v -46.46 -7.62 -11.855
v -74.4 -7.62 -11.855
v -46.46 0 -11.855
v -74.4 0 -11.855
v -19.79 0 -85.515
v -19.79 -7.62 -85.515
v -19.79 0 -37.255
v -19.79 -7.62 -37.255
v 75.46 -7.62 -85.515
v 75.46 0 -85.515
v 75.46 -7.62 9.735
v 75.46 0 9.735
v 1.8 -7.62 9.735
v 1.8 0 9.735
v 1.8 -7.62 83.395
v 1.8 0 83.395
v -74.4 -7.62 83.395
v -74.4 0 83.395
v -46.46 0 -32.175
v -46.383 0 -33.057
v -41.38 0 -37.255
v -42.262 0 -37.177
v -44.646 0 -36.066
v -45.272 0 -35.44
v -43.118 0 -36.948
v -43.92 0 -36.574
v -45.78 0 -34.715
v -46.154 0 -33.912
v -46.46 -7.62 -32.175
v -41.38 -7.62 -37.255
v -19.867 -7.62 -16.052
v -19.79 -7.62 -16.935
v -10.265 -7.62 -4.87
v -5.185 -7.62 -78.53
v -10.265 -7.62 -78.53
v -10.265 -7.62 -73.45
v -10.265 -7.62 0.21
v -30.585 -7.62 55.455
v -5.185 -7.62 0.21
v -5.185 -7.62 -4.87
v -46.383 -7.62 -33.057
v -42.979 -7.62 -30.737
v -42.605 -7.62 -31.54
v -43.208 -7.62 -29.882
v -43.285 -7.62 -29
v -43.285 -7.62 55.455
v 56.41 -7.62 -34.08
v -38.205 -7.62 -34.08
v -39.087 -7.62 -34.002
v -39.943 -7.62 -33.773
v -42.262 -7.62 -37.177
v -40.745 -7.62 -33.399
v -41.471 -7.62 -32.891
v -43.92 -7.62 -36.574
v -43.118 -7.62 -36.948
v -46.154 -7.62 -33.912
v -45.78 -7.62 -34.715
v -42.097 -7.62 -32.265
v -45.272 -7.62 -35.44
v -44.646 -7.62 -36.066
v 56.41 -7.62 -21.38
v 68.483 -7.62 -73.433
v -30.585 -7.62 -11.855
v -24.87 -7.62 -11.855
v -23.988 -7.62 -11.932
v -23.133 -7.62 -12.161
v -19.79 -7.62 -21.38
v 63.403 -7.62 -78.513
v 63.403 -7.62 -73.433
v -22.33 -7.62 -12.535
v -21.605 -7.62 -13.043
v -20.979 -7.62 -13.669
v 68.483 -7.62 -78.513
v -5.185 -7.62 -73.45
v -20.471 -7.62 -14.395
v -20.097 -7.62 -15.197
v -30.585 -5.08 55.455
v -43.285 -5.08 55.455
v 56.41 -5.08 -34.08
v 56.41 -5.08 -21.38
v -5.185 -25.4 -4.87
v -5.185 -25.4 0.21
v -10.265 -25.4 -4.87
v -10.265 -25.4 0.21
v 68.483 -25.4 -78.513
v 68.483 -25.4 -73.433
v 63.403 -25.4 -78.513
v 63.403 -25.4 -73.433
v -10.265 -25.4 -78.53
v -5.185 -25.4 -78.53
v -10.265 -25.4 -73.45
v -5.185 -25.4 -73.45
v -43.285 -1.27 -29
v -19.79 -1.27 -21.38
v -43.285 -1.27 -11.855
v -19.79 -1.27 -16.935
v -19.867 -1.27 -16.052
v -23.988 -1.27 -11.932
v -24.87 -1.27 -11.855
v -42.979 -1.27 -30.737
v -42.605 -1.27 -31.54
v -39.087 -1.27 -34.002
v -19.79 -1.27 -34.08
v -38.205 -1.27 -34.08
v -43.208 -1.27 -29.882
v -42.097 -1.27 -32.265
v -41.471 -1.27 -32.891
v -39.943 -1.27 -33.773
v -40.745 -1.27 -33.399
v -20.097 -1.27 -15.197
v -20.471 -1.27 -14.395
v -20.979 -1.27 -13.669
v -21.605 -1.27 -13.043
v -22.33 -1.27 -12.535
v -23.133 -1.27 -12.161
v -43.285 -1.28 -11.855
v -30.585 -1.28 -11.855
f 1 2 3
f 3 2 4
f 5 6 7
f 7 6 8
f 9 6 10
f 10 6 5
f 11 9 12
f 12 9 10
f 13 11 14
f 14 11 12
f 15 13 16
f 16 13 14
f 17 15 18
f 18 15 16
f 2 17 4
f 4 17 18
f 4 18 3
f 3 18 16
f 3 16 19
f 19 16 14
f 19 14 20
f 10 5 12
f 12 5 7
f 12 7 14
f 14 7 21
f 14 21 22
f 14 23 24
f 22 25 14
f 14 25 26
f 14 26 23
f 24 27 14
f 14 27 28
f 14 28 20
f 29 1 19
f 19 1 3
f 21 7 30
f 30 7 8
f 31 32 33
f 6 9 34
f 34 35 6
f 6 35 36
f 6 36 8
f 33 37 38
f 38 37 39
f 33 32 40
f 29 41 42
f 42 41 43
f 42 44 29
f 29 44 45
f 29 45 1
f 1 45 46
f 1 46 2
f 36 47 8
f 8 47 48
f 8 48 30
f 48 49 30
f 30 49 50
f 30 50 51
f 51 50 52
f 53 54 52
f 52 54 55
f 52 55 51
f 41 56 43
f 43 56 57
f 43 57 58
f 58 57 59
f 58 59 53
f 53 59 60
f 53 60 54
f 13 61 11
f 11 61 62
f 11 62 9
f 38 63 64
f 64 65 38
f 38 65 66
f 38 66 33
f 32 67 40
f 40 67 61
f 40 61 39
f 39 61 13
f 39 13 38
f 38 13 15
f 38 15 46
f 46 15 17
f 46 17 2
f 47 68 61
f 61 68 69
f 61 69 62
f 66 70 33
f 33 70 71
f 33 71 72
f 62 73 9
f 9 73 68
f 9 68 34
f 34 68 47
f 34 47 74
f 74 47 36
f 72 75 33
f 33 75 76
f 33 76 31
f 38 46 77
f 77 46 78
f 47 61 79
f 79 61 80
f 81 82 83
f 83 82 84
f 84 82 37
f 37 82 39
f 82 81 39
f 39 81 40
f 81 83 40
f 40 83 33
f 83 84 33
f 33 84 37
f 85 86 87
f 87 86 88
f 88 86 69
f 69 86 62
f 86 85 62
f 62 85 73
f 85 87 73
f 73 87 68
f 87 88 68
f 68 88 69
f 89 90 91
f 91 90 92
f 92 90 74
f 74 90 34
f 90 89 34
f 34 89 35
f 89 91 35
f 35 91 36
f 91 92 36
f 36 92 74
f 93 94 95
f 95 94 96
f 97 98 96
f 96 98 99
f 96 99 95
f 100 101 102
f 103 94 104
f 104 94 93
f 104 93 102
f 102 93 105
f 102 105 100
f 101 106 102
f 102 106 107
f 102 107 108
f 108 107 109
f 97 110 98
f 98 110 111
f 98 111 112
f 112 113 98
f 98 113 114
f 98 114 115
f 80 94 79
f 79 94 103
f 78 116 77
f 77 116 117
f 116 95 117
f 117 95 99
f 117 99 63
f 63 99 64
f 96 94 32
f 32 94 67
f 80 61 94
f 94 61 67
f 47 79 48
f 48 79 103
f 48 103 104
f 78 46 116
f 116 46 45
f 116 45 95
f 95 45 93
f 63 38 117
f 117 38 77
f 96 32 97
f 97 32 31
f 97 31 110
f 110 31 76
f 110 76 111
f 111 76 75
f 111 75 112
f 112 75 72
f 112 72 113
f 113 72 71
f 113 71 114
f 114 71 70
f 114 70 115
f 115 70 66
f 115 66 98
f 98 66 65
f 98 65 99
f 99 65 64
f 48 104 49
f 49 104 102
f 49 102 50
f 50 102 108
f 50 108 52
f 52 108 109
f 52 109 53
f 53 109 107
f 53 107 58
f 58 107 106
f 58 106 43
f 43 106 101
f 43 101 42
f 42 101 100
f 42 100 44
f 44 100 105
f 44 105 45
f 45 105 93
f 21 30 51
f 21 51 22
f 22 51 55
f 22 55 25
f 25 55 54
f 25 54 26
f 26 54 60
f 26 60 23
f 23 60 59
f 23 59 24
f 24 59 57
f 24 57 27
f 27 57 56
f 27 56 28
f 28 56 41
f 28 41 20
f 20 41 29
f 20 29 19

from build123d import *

# Parameters (mm, degrees)
SKETCH1_W            = 5.08
SKETCH1_H            = 5.08
BOSS_EXTRUDE2_DEPTH  = 5.08
BOSS_EXTRUDE7_DEPTH  = 5.08
BOSS_EXTRUDE8_DEPTH  = 1.27
BOSS_EXTRUDE9_DEPTH  = 12.7
BOSS_EXTRUDE10_DEPTH = 12.7
SKETCH1_5_W          = 5.08
SKETCH1_5_H          = 5.08
BOSS_EXTRUDE12_DEPTH = 25.4
BOSS_EXTRUDE13_DEPTH = 2.54
FILLET4_R            = 5.08


with BuildPart() as part:
    # Sketch1 → Boss-Extrude2 (new body)
    with BuildSketch(Plane(origin=(0, 0, 0), x_dir=(1, 0, 0), z_dir=(0, 1, 0))):
        Polygon((1.79979496, -9.735410081), (75.45979496, -9.735410081), (75.45979496, 85.514589919), (-19.79020504, 85.514589919), (-19.79020504, 34.079589919), (18.30979496, 34.079589919), (19.57979496, 34.079589919), (24.02479496, 34.079589919), (25.29479496, 34.079589919), (29.73979496, 34.079589919), (31.00979496, 34.079589919), (43.70979496, 34.079589919), (44.97979496, 34.079589919), (49.42479496, 34.079589919), (50.69479496, 34.079589919), (55.13979496, 34.079589919), (56.40979496, 34.079589919), (56.40979496, 21.379589919), (55.13979496, 21.379589919), (50.69479496, 21.379589919), (49.42479496, 21.379589919), (44.97979496, 21.379589919), (43.70979496, 21.379589919), (31.00979496, 21.379589919), (29.73979496, 21.379589919), (25.29479496, 21.379589919), (24.02479496, 21.379589919), (19.57979496, 21.379589919), (18.30979496, 21.379589919), (-19.79020504, 21.379589919), (-19.79020504, 11.854589919), (-30.58520504, 11.854589919), (-30.58520504, -28.571024106), (-30.58520504, -41.271024106), (-30.58520504, -42.755410081), (-30.58520504, -55.455410081), (-31.85520504, -55.455410081), (-36.30020504, -55.455410081), (-37.57020504, -55.455410081), (-42.01520504, -55.455410081), (-43.28520504, -55.455410081), (-43.28520504, -42.755410081), (-43.28520504, -41.271024106), (-43.28520504, -28.571024106), (-43.28520504, 11.854589919), (-74.40020504, 11.854589919), (-74.40020504, -83.395410081), (1.79979496, -83.395410081), align=None)
        with Locations((-7.72520504, 2.329589919)):
            Rectangle(SKETCH1_W, SKETCH1_H, mode=Mode.SUBTRACT)
        with Locations((-7.72520504, 75.989589919)):
            Rectangle(SKETCH1_W, SKETCH1_H, mode=Mode.SUBTRACT)
        with Locations((65.942961522, 75.973256793)):
            Rectangle(SKETCH1_W, SKETCH1_H, mode=Mode.SUBTRACT)
    extrude(amount=-BOSS_EXTRUDE2_DEPTH)

    # Sketch4 → Boss-Extrude7 (add)
    with BuildSketch(Plane(origin=(0, 0, 0), x_dir=(1, 0, 0), z_dir=(0, 1, 0))):
        Polygon((-46.46020504, 11.854589919), (-43.28520504, 11.854589919), (-43.28520504, 34.079589919), (-19.79020504, 34.079589919), (-19.79020504, 37.254589919), (-46.46020504, 37.254589919), align=None)
    extrude(amount=-BOSS_EXTRUDE7_DEPTH)



with BuildPart() as body_2:
    # Sketch4<5> → Boss-Extrude8 (new body)
    with BuildSketch(Plane(origin=(0, 0, 0), x_dir=(1, 0, 0), z_dir=(0, 1, 0))):
        Polygon((-30.58520504, 11.854589919), (-19.79020504, 11.854589919), (-19.79020504, 21.379589919), (-19.79020504, 34.079589919), (-43.28520504, 34.079589919), (-43.28520504, 11.854589919), align=None)
    extrude(amount=-BOSS_EXTRUDE8_DEPTH)


with BuildPart() as part_1:
    add(part.part)

    add(body_2.part)  # Boss-Extrude9 merges body 2
    # Sketch5 → Boss-Extrude9 (add)
    with BuildSketch(Plane.ZY.offset(30.58520504)):
        Polygon((55.455410081, -5.08), (55.455410081, 0), (-11.854589919, 0), (-11.854589919, -1.279733849), align=None)
    extrude(amount=BOSS_EXTRUDE9_DEPTH)

    # Sketch6 → Boss-Extrude10 (add)
    with BuildSketch(Plane.XY.offset(-34.079589919)):
        Polygon((56.40979496, -5.08), (56.40979496, 0), (-19.79020504, 0), (-19.79020504, -1.27), align=None)
    extrude(amount=BOSS_EXTRUDE10_DEPTH)

    # Sketch1<5> → Boss-Extrude12 (add)
    with BuildSketch(Plane(origin=(0, 0, 0), x_dir=(1, 0, 0), z_dir=(0, 1, 0))):
        with Locations((-7.72520504, 75.989589919)):
            Rectangle(SKETCH1_5_W, SKETCH1_5_H)
        with Locations((65.942961522, 75.973256793)):
            Rectangle(SKETCH1_5_W, SKETCH1_5_H)
        with Locations((-7.72520504, 2.329589919)):
            Rectangle(SKETCH1_5_W, SKETCH1_5_H)
    extrude(amount=-BOSS_EXTRUDE12_DEPTH)

    # Sketch7 → Boss-Extrude13 (add)
    with BuildSketch(Plane.XZ.offset(5.08)):
        Polygon((-74.40020504, -11.854589919), (-46.46020504, -11.854589919), (-46.46020504, -37.254589919), (-19.79020504, -37.254589919), (-19.79020504, -85.514589919), (75.45979496, -85.514589919), (75.45979496, 9.735410081), (1.79979496, 9.735410081), (1.79979496, 83.395410081), (-74.40020504, 83.395410081), align=None)
        Polygon((-30.58520504, 55.455410081), (-43.28520504, 55.455410081), (-43.28520504, -34.079589919), (56.40979496, -34.079589919), (56.40979496, -21.379589919), (-19.79020504, -21.379589919), (-19.79020504, -11.854589919), (-30.58520504, -11.854589919), align=None, mode=Mode.SUBTRACT)
    extrude(amount=BOSS_EXTRUDE13_DEPTH)

    # Fillet4
    fillet4_edges = [part_1.edges().sort_by_distance(p)[0] for p in [
        (-43.28520504, -4.445, -34.079589919),
        (-46.46020504, -3.81, -37.254589919),
        (-19.79020504, -4.445, -11.854589919),
    ]]
    fillet(fillet4_edges, radius=FILLET4_R)


solid = part_1.part
